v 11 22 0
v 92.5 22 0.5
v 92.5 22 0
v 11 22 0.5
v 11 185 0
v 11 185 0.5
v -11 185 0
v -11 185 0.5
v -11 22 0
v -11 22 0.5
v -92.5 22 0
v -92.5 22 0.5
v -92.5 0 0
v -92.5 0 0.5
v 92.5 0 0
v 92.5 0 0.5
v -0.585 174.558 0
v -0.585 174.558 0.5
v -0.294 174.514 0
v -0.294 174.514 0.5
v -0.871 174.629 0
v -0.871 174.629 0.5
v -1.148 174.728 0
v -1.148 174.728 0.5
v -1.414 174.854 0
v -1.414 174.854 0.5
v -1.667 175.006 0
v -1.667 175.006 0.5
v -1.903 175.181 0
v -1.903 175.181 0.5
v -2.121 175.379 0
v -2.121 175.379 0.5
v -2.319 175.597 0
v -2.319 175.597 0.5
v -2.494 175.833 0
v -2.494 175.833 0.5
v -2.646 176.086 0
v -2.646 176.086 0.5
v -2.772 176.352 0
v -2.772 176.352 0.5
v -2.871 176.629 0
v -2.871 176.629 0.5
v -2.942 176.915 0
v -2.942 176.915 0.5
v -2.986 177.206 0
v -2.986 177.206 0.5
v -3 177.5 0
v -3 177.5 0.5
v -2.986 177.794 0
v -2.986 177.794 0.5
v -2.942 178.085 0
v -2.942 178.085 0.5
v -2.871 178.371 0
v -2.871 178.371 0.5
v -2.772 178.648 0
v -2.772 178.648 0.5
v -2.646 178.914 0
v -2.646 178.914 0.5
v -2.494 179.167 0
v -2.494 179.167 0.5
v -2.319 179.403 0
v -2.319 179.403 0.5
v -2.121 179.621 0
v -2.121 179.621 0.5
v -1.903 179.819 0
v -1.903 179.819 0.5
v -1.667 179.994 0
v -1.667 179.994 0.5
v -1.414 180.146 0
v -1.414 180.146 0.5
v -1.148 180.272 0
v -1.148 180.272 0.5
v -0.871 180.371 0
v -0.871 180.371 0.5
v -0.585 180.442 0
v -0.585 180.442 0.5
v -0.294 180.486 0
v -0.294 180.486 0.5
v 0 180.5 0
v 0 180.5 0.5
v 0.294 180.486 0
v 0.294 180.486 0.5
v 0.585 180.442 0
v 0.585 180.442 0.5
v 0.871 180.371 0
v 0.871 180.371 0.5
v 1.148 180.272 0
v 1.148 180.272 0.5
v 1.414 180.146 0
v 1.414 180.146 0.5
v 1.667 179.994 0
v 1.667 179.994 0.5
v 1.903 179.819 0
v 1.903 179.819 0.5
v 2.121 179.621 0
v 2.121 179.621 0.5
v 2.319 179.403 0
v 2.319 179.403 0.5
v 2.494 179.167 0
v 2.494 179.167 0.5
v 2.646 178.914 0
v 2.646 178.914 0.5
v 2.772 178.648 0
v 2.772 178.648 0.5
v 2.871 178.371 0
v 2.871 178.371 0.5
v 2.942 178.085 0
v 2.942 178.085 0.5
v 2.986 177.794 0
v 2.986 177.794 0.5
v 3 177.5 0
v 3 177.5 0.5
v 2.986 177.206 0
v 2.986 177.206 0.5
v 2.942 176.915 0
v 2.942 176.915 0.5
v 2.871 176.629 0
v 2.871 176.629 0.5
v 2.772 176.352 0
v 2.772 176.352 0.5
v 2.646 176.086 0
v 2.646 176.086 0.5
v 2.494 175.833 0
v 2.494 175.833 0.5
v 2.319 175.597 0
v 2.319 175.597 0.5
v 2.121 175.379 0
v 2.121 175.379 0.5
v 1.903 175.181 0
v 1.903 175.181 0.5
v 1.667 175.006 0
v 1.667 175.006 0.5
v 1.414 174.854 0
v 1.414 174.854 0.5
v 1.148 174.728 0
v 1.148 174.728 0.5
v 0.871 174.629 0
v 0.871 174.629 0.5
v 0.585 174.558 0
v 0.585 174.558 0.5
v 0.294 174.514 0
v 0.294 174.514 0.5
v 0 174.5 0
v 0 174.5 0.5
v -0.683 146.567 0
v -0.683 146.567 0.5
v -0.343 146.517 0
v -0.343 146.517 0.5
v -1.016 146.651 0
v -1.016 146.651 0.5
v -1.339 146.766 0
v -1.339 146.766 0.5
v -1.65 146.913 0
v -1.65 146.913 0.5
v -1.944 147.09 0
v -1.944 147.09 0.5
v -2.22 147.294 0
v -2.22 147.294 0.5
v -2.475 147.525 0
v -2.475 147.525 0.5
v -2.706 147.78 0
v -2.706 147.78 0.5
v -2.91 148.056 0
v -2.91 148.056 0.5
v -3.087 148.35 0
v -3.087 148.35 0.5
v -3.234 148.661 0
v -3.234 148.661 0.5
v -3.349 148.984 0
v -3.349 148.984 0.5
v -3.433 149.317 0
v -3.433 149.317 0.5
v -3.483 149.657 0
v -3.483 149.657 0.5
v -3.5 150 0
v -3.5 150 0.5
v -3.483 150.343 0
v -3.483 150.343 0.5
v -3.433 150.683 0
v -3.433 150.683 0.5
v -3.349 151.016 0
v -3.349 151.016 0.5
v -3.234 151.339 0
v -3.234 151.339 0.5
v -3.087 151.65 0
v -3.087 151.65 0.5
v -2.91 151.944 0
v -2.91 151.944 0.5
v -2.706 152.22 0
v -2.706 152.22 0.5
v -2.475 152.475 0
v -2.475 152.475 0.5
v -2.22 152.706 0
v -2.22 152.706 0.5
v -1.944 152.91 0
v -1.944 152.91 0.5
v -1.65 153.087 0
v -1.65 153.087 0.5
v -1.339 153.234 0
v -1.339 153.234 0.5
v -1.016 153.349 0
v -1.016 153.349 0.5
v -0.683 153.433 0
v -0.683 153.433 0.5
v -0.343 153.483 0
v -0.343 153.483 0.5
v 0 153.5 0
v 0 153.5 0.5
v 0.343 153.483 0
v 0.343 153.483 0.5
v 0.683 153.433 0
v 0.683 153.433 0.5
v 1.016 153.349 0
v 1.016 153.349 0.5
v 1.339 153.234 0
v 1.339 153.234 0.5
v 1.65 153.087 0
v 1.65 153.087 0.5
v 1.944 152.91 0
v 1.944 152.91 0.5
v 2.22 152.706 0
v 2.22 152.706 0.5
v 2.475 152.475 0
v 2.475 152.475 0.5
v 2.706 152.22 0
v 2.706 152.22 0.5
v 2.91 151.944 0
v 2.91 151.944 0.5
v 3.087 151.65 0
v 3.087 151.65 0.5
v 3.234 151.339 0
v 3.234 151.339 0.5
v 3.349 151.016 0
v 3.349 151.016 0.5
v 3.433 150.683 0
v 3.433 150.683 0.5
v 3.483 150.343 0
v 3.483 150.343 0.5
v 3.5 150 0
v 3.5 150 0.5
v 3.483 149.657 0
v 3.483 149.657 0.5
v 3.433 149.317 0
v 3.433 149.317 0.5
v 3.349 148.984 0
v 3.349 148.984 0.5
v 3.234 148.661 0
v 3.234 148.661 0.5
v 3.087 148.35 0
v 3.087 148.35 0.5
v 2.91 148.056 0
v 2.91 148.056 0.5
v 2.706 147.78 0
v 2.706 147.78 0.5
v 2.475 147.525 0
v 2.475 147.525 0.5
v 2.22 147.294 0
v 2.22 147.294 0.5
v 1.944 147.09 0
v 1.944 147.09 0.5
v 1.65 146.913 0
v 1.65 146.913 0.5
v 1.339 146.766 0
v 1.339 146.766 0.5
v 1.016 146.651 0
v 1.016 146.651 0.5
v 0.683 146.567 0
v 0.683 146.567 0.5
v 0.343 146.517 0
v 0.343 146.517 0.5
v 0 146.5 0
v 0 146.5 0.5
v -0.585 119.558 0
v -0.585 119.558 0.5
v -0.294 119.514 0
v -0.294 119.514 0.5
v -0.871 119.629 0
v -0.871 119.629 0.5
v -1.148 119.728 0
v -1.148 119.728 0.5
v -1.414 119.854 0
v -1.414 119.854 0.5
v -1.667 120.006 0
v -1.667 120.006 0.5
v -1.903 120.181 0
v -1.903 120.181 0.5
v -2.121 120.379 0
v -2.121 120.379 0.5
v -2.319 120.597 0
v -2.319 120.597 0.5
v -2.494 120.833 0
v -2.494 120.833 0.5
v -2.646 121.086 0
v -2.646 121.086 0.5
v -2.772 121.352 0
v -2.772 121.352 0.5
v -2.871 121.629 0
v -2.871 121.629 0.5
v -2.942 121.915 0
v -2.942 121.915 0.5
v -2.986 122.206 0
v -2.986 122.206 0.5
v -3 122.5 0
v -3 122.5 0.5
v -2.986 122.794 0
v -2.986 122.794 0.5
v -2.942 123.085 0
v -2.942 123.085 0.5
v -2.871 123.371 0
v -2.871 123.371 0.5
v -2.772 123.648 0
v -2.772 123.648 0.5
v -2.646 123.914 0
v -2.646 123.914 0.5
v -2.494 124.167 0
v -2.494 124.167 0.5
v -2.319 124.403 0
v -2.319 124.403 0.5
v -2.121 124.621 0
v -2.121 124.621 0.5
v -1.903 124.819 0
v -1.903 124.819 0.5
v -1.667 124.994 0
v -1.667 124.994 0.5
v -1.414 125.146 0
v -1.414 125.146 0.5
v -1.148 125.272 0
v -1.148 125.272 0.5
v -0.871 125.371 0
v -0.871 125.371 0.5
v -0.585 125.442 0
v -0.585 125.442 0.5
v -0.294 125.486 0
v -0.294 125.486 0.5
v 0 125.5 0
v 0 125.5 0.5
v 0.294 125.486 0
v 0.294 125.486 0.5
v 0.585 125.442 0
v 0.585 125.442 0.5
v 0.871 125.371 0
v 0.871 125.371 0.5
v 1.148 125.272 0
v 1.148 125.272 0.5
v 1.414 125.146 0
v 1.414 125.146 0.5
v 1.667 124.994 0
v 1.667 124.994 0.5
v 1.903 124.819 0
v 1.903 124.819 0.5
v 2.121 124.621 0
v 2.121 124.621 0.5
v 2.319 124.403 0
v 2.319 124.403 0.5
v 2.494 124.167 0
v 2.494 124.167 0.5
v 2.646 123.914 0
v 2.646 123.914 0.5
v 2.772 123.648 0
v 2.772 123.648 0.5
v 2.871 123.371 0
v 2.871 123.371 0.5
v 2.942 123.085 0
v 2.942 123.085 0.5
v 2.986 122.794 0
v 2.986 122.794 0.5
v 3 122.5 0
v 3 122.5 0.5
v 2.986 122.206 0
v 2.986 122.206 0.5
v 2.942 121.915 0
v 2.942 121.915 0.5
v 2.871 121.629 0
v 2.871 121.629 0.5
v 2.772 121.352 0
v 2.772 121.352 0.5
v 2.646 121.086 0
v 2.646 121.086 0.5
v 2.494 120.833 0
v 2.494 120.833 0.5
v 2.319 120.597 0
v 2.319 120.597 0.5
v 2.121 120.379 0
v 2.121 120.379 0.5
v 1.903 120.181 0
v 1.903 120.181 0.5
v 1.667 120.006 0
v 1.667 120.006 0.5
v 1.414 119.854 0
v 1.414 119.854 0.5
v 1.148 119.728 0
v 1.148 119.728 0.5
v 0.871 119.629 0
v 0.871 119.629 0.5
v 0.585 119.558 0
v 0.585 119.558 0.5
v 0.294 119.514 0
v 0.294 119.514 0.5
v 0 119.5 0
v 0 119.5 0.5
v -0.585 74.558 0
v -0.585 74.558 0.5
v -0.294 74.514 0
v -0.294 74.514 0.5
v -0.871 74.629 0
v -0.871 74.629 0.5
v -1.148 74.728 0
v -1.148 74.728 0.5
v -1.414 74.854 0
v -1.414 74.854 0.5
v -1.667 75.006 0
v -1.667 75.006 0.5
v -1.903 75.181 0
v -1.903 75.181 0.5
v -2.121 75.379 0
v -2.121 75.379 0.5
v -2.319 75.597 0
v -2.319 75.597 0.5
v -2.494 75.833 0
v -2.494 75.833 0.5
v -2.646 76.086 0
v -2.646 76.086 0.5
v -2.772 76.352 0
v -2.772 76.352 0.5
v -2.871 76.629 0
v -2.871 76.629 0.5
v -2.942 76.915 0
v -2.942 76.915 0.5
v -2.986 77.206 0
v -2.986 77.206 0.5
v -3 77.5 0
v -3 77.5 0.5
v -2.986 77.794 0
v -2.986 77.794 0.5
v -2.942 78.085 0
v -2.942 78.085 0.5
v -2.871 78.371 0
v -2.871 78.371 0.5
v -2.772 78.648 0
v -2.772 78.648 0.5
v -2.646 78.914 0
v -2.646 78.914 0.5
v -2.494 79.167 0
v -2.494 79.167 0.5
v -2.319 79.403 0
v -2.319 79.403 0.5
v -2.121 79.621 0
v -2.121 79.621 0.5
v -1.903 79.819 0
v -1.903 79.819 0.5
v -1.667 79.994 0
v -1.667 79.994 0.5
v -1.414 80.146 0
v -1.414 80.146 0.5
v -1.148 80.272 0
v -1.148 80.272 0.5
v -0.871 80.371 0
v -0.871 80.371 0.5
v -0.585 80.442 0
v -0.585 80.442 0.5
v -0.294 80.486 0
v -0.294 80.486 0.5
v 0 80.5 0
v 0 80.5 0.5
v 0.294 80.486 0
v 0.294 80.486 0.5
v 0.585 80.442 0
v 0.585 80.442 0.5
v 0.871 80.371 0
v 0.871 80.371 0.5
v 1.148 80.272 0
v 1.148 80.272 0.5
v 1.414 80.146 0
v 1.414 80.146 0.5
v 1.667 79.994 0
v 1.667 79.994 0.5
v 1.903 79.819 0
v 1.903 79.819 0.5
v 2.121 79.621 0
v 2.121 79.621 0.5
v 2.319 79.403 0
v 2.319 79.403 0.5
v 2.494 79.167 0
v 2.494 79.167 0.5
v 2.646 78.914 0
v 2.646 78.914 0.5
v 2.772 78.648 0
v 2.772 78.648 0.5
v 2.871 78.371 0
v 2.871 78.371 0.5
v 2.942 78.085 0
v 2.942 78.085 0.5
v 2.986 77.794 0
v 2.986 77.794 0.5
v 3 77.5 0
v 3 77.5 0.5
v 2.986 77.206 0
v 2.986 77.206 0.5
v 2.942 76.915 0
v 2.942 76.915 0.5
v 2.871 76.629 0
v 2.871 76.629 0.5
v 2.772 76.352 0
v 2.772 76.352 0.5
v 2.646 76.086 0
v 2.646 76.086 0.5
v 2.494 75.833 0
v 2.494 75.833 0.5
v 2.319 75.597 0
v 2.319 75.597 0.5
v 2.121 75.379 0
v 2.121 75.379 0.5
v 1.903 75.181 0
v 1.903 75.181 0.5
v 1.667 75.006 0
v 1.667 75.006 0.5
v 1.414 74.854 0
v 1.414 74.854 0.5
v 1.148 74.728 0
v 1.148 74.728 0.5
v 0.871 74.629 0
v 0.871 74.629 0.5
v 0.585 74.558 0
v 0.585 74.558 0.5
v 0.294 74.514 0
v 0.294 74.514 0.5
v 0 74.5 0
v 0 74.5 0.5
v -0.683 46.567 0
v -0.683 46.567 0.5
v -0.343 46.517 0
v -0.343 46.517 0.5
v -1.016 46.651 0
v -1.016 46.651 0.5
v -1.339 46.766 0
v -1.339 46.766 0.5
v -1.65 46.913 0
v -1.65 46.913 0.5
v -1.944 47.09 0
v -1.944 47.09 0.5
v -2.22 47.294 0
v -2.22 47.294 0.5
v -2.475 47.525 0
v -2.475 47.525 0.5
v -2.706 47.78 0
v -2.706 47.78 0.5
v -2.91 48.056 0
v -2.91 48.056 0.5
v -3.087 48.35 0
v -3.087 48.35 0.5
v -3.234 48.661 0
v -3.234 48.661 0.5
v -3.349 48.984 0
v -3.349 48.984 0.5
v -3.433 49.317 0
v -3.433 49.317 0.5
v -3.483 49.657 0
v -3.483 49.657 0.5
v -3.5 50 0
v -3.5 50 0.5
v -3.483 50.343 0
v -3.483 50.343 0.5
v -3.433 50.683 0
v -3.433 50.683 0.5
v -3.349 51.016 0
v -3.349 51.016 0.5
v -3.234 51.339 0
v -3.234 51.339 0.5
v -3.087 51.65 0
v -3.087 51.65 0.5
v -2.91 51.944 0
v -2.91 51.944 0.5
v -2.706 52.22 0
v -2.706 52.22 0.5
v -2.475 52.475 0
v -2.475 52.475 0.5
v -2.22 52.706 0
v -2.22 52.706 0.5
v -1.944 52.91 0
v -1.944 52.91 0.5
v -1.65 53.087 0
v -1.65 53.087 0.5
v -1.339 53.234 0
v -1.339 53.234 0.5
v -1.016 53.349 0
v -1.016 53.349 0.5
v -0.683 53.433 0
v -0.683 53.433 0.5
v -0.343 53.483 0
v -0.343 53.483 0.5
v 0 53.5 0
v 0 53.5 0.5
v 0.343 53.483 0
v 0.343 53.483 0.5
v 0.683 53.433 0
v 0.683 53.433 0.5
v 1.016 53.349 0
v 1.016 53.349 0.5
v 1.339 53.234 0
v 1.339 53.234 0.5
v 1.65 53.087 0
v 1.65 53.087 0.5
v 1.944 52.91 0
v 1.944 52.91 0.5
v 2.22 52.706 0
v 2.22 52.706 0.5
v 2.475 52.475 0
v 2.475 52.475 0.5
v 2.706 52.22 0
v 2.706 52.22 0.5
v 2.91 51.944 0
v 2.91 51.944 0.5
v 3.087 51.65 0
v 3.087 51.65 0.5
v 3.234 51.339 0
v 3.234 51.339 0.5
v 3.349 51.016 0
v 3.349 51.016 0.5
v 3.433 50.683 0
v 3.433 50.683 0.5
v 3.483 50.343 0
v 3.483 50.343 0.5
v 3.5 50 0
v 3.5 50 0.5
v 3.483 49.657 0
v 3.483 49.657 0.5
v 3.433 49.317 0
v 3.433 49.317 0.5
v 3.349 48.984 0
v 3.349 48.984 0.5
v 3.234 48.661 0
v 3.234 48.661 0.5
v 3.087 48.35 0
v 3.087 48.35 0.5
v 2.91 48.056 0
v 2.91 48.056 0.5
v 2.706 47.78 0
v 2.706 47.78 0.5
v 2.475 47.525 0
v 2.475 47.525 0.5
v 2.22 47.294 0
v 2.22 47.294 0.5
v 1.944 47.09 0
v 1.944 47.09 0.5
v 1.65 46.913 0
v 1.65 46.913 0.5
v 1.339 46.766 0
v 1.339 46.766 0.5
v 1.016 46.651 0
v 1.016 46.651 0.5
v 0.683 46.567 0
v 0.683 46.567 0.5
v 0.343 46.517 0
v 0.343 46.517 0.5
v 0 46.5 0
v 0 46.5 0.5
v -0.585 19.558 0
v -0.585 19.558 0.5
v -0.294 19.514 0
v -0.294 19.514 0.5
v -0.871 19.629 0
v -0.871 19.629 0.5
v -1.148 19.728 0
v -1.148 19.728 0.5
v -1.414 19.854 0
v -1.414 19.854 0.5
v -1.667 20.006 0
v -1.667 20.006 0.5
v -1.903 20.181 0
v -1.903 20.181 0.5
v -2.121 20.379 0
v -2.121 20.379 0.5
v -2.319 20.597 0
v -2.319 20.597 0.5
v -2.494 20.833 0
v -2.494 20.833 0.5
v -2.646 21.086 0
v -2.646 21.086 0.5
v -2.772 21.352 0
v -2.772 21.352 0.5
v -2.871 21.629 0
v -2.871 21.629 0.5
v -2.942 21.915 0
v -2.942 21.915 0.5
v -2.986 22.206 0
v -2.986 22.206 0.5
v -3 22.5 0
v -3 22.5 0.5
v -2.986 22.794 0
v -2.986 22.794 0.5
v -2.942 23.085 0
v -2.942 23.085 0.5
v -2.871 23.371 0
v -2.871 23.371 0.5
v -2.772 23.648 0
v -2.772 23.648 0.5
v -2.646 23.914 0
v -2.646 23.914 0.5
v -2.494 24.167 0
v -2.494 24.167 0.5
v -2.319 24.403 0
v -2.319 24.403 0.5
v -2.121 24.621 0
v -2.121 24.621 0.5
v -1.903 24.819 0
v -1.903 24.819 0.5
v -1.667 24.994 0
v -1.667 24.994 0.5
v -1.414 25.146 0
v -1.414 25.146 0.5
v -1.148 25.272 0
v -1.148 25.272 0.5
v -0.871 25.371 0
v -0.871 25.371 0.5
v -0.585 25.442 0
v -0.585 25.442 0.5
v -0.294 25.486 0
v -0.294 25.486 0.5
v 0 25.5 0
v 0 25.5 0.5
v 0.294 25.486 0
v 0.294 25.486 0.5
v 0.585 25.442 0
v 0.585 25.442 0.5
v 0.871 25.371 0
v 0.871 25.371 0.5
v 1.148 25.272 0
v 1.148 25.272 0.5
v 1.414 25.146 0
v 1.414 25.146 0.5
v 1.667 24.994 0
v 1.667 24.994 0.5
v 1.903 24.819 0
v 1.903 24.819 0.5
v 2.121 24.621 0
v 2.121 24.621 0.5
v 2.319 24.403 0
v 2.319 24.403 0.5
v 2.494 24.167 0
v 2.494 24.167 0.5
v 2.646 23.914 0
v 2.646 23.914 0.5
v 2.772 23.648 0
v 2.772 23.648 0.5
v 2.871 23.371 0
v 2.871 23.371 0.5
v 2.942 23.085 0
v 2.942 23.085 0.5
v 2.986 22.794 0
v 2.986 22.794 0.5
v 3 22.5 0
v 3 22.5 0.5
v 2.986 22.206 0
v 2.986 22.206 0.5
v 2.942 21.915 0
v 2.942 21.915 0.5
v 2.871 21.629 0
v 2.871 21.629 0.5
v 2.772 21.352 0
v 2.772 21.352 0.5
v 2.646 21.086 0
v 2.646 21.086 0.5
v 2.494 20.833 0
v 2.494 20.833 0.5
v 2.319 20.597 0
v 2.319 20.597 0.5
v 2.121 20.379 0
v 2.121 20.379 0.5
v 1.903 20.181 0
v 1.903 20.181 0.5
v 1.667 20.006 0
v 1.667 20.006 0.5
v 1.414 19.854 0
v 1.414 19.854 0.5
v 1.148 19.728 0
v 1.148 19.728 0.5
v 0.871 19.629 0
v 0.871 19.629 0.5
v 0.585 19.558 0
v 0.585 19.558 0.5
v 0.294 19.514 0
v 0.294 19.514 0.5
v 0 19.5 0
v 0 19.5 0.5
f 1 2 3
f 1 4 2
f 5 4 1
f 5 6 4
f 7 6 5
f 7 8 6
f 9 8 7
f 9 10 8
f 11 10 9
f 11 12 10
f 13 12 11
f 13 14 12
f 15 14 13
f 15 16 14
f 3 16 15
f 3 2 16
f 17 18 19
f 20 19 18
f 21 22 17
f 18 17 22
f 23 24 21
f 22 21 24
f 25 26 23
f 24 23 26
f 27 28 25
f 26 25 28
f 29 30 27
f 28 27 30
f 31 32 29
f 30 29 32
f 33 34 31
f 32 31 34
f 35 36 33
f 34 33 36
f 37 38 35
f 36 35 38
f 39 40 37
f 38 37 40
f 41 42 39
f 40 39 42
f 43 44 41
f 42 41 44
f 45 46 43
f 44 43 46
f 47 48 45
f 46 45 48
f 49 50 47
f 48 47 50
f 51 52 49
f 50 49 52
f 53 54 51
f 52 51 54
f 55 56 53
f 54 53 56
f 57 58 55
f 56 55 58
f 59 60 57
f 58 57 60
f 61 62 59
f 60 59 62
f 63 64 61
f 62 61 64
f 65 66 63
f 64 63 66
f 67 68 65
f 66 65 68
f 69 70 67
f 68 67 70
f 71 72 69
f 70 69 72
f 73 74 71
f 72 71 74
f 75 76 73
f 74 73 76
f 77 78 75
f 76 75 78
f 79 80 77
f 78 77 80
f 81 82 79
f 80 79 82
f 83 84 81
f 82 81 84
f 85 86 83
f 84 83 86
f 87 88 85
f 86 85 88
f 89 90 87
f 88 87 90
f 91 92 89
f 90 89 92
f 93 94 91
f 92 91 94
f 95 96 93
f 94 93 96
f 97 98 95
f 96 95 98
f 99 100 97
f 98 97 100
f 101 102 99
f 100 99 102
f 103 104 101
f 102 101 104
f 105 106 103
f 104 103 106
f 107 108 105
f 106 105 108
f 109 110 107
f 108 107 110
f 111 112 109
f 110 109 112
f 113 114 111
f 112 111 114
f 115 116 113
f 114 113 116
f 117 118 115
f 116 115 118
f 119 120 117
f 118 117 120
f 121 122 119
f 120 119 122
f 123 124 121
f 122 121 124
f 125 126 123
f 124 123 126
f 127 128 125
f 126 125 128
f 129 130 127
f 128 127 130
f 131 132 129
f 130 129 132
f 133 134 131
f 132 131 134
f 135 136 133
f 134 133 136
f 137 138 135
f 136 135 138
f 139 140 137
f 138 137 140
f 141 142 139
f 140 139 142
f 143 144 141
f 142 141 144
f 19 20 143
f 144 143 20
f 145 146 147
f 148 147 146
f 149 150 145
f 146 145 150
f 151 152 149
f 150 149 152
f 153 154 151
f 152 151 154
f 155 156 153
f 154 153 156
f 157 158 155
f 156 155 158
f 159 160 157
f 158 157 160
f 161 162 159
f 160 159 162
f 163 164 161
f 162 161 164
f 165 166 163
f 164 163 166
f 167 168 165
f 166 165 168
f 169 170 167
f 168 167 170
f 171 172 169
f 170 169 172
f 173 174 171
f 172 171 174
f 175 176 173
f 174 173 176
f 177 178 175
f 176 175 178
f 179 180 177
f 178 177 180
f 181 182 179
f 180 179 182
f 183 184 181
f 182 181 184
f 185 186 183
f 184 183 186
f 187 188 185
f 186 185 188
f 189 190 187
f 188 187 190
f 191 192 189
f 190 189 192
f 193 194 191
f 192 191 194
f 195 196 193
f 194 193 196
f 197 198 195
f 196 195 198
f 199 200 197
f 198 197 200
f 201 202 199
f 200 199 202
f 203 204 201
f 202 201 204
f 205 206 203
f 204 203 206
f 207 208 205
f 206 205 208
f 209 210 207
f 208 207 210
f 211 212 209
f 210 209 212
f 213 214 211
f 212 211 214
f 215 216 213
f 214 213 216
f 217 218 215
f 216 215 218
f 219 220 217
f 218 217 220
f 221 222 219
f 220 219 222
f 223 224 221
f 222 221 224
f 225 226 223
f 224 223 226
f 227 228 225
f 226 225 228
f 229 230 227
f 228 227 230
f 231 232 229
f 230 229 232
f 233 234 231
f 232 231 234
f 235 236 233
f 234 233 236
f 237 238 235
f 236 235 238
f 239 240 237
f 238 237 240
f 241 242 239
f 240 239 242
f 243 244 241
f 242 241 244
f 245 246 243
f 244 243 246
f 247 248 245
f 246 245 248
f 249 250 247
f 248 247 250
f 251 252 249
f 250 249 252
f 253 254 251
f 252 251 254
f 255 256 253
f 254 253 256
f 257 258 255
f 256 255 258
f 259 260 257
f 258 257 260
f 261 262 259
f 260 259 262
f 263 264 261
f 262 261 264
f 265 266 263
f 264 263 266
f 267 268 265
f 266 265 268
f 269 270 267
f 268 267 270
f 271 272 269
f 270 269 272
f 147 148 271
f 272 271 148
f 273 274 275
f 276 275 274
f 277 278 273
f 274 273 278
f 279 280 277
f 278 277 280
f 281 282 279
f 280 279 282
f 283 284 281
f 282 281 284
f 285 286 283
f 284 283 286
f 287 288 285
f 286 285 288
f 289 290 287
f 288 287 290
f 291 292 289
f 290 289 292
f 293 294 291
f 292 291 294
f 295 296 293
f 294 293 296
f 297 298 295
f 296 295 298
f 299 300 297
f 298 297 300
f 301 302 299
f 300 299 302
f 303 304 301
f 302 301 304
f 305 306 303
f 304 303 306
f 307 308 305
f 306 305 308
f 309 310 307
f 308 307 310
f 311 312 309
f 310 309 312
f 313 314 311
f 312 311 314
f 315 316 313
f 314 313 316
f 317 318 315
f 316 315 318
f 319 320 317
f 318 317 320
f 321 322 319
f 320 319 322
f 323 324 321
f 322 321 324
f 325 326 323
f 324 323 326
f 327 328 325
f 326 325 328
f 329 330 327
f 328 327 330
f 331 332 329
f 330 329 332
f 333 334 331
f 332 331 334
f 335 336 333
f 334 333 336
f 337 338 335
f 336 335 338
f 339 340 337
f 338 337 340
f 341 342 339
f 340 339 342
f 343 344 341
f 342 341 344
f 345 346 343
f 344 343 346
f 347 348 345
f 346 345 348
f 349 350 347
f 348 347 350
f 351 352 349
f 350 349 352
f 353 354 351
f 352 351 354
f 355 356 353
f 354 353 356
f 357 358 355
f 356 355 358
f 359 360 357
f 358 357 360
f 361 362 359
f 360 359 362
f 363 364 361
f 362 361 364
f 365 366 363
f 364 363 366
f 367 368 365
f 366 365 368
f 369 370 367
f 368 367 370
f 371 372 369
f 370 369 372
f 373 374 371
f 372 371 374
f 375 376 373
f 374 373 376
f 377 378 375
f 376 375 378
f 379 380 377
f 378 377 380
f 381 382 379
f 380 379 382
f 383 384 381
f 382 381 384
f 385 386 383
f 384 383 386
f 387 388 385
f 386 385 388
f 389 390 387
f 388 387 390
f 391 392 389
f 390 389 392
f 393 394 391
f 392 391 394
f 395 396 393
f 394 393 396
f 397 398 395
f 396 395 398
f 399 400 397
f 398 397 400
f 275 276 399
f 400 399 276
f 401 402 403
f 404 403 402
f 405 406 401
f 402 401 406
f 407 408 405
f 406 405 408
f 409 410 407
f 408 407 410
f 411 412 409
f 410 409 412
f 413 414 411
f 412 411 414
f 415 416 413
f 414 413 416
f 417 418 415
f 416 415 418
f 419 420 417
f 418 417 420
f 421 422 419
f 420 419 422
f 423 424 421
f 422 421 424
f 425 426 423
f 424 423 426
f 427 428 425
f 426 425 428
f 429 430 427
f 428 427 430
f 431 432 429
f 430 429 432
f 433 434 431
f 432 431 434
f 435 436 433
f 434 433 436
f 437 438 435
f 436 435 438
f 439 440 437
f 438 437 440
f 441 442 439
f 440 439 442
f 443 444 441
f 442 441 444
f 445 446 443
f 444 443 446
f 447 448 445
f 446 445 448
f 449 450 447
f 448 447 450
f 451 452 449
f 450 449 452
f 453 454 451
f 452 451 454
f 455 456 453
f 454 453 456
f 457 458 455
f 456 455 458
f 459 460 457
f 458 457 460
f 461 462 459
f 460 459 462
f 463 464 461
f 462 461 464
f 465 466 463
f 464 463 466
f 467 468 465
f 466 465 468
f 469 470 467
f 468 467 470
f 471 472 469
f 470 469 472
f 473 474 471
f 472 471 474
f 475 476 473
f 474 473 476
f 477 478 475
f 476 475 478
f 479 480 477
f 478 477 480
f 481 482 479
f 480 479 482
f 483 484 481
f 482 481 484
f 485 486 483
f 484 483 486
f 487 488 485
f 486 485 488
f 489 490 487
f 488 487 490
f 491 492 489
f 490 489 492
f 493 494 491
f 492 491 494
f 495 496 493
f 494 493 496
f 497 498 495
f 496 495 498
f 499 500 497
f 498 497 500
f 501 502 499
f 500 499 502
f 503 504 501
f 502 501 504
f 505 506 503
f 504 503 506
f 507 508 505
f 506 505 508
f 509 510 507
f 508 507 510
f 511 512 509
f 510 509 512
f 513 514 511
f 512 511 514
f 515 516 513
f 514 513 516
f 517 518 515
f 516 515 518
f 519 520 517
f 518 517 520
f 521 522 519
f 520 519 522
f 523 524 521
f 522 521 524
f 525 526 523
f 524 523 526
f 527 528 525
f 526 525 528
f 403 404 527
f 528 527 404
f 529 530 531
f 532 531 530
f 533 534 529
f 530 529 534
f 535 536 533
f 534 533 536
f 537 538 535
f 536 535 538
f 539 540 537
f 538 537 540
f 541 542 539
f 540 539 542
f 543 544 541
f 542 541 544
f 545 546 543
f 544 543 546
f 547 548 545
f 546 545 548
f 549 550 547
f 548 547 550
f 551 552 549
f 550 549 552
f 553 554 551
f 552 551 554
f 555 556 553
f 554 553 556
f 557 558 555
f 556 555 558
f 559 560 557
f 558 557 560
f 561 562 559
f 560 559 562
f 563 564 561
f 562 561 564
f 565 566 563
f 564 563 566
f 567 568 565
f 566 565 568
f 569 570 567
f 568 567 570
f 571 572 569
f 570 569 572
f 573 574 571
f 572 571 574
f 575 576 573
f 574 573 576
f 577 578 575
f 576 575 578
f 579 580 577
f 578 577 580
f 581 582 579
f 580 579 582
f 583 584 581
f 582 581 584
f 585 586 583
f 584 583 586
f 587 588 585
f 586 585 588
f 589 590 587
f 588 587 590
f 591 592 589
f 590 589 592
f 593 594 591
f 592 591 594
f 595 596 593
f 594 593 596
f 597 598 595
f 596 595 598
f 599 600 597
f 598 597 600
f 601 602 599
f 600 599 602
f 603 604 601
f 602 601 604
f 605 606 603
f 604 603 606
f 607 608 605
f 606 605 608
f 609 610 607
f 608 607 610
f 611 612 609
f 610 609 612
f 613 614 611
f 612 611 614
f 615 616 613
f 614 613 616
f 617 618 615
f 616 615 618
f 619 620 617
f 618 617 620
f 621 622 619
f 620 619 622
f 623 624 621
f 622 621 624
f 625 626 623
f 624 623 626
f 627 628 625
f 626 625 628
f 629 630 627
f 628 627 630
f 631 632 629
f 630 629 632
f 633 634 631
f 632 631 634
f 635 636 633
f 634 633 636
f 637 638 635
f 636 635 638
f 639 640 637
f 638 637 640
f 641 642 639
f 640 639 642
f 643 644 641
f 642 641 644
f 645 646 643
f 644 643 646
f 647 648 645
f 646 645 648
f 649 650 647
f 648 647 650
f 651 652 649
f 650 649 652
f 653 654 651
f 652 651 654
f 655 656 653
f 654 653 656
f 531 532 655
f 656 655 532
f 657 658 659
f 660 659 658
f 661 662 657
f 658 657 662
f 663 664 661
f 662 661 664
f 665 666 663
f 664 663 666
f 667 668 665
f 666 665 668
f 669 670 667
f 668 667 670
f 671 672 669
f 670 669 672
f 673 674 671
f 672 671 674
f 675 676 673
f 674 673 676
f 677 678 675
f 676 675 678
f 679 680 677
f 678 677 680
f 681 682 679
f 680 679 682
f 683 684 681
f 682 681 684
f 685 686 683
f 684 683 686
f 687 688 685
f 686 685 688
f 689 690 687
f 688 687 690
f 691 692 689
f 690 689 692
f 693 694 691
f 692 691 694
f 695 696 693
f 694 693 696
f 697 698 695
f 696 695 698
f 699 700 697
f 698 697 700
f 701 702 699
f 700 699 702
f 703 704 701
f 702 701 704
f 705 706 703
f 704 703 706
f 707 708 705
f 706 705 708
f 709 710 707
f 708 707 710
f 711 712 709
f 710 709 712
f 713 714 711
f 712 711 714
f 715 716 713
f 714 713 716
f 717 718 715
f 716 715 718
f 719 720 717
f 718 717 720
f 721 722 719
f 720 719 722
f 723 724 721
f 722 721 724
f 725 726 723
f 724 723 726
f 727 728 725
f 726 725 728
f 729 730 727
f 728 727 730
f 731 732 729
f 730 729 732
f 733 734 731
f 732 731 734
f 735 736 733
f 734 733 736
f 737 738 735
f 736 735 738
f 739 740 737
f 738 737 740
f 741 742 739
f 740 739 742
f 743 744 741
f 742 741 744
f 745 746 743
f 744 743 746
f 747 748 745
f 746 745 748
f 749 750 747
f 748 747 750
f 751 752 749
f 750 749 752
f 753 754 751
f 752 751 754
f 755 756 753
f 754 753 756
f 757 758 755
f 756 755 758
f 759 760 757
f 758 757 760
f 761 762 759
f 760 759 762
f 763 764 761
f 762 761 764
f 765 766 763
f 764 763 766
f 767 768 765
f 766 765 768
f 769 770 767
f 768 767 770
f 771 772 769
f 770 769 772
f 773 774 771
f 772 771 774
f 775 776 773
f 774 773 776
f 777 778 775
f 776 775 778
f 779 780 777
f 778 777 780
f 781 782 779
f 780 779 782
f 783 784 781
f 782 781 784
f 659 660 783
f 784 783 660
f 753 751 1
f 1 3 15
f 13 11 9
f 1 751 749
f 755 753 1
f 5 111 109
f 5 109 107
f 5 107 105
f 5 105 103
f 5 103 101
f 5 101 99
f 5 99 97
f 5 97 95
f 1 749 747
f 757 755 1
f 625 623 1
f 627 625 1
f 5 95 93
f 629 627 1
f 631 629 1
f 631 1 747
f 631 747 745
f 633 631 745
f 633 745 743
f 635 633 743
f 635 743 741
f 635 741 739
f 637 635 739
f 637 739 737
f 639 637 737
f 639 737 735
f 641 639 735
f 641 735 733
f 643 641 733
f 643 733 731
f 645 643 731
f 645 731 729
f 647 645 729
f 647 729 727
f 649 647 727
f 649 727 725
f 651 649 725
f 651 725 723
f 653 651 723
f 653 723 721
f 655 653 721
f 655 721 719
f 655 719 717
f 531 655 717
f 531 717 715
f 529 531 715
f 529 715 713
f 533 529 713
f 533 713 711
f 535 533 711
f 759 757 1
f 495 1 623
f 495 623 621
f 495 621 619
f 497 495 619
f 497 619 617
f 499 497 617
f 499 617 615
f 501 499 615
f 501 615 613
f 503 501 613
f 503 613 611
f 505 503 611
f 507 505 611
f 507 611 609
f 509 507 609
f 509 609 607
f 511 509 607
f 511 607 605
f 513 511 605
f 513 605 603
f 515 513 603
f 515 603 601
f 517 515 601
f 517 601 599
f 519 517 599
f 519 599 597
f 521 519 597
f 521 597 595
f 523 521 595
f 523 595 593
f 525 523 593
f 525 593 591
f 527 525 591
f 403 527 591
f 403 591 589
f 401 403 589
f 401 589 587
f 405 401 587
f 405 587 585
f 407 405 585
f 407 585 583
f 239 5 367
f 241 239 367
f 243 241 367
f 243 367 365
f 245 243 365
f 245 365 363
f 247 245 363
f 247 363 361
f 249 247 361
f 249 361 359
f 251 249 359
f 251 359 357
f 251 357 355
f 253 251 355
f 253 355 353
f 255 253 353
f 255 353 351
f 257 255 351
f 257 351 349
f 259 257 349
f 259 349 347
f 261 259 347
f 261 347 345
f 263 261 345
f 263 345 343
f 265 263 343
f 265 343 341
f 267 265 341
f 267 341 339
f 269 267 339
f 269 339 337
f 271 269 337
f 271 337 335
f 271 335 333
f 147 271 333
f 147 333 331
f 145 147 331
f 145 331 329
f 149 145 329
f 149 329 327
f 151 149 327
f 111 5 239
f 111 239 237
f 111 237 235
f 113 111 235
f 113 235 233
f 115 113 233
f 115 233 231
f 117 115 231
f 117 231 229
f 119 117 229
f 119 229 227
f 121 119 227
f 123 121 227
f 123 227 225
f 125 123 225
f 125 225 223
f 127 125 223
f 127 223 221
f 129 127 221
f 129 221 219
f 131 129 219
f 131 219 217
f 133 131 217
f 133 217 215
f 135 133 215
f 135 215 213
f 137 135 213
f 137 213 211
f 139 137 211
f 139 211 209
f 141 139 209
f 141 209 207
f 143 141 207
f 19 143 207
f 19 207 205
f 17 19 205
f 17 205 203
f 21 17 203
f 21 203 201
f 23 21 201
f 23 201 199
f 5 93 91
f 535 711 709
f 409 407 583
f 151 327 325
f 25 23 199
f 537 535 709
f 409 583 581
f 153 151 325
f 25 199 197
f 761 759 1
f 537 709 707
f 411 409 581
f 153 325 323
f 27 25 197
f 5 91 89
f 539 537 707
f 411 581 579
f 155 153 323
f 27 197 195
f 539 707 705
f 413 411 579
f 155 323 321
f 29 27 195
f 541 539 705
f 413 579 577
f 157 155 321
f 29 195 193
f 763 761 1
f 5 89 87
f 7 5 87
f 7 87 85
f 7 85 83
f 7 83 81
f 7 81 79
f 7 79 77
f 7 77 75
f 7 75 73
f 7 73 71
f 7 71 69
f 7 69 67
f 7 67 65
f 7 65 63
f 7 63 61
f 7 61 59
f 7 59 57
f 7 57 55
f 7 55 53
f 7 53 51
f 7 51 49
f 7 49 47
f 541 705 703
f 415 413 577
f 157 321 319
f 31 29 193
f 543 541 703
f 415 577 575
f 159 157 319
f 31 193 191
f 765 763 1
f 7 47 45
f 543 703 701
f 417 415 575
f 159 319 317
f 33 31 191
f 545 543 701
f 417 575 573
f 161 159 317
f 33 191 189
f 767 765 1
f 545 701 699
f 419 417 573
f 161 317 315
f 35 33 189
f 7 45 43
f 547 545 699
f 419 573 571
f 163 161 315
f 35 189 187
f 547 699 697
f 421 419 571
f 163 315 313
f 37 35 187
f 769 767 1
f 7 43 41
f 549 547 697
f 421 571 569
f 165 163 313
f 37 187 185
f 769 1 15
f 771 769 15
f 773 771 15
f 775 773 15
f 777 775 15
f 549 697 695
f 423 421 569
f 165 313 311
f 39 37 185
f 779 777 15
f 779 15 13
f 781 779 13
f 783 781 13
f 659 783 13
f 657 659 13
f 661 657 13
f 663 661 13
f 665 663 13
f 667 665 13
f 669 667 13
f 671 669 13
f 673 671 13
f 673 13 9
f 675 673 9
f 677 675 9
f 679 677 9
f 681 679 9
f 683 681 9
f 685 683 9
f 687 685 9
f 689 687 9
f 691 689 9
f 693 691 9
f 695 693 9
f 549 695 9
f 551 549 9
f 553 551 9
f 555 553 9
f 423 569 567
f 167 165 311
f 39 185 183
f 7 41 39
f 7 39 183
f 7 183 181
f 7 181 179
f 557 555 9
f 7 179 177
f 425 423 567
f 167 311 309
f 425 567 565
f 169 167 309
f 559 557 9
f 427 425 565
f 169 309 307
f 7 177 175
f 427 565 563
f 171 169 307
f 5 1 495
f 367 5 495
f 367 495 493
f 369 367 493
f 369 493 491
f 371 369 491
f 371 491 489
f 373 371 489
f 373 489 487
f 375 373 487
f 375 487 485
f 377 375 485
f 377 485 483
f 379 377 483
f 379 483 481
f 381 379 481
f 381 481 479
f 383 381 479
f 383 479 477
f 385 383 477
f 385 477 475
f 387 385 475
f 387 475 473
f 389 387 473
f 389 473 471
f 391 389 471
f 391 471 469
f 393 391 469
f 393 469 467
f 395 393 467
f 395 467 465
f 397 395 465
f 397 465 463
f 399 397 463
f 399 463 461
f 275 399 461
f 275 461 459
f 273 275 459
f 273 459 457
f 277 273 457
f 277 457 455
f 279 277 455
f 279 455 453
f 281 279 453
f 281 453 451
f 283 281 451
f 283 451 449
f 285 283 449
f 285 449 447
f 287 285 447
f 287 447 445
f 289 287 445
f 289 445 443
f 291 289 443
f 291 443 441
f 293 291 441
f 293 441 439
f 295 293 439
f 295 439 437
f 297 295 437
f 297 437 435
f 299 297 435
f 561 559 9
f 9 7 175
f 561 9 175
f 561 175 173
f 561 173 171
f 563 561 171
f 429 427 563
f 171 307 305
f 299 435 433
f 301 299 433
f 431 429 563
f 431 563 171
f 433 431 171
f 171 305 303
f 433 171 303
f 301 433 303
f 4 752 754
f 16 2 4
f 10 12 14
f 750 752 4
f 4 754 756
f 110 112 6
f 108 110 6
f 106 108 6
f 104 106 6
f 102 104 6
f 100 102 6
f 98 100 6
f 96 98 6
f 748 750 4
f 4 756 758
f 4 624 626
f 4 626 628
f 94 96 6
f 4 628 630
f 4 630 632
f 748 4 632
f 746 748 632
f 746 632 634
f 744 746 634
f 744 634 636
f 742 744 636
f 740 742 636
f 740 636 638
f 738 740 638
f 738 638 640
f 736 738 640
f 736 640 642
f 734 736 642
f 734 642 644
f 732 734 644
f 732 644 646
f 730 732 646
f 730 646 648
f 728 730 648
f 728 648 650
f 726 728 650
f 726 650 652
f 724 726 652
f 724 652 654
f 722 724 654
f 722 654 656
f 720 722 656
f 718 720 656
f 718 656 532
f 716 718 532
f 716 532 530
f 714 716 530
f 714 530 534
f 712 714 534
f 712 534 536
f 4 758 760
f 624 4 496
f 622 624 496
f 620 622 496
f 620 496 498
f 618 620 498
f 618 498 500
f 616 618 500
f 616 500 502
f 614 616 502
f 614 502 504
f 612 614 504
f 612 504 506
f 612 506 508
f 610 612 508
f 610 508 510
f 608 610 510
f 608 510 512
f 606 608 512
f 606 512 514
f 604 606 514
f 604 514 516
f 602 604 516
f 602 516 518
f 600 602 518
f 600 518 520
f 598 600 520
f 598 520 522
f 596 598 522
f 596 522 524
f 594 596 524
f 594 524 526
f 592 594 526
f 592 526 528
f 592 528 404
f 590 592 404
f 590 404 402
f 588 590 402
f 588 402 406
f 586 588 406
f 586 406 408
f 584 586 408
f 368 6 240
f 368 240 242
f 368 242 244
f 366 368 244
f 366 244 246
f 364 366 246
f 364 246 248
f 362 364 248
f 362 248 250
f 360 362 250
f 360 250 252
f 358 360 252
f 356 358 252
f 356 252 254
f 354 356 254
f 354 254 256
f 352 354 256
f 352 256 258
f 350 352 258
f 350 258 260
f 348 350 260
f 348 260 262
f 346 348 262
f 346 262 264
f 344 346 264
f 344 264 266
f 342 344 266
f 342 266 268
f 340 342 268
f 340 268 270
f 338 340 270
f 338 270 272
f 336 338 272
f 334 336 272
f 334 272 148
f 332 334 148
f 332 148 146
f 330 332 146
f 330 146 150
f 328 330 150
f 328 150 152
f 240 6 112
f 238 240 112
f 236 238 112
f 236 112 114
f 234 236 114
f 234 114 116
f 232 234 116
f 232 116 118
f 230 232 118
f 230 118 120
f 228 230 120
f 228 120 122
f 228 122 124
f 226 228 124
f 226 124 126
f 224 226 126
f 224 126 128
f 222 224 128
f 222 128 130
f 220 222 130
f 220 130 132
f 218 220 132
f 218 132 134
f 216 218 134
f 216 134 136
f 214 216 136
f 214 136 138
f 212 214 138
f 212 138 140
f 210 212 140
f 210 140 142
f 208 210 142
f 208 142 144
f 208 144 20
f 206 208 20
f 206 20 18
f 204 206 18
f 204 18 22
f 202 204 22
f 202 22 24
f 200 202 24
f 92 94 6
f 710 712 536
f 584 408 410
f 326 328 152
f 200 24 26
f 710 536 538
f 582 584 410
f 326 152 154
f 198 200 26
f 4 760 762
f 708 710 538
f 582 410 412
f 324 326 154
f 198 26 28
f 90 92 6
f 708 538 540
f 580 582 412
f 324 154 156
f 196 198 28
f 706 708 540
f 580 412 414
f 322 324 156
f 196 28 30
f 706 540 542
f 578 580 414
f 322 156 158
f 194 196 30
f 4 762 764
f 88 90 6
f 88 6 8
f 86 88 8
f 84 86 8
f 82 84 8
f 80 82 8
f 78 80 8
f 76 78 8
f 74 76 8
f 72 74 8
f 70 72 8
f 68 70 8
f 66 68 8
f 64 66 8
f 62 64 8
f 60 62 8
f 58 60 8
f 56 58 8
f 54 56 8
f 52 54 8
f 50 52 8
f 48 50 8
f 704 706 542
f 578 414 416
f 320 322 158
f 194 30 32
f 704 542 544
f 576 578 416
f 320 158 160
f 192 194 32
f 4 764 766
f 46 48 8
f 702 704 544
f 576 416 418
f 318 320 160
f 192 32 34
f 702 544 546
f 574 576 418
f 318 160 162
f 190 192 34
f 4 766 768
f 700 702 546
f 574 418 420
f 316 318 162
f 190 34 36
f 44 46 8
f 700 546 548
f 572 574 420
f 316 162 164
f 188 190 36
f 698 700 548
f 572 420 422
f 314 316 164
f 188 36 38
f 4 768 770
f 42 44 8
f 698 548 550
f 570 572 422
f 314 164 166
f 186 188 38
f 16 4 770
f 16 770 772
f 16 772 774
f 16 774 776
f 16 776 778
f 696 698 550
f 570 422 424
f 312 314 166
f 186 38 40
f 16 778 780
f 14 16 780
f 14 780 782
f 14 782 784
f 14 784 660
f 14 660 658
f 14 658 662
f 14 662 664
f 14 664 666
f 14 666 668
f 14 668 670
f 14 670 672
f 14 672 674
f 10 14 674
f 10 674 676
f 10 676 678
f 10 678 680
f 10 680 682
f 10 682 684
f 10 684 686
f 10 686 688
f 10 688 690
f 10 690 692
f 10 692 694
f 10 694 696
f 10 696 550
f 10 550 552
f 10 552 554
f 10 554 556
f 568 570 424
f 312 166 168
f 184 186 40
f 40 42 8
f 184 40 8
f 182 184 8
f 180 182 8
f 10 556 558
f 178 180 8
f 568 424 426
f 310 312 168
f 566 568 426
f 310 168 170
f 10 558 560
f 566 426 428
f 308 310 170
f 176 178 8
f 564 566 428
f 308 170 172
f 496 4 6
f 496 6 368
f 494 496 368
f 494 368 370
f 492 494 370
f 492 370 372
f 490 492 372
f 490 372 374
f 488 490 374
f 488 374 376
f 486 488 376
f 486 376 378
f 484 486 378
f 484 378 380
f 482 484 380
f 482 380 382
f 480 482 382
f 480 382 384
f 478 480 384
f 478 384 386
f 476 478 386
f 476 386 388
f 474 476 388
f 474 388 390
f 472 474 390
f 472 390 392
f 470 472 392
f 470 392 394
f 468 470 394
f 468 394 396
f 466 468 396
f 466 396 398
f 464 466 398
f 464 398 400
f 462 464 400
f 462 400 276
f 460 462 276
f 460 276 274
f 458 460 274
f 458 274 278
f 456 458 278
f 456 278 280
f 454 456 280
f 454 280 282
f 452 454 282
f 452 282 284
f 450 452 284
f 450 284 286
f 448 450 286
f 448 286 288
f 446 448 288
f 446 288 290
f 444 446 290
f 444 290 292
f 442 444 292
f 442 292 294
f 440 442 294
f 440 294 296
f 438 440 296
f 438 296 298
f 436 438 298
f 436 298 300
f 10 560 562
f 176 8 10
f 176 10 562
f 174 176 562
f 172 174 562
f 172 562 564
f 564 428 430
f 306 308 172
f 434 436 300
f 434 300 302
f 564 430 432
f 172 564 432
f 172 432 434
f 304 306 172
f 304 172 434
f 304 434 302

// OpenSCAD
$fn = 64;


linear_extrude(0.5){
    difference() {
        union() {
            translate([-22/2, 0]) square([22, 185]);
            translate([-185/2, 0]) square([185, 22]);
        }

        translate([0, 50]) circle(3.5);
        translate([0, 150]) circle(3.5);
        
        // 27.5 difference between holes
        translate([0, 50 + 27.5]) circle(3);
        translate([0, 50 - 27.5]) circle(3);
        
        translate([0, 150 + 27.5]) circle(3);
        translate([0, 150 - 27.5]) circle(3);
        
    }
}
